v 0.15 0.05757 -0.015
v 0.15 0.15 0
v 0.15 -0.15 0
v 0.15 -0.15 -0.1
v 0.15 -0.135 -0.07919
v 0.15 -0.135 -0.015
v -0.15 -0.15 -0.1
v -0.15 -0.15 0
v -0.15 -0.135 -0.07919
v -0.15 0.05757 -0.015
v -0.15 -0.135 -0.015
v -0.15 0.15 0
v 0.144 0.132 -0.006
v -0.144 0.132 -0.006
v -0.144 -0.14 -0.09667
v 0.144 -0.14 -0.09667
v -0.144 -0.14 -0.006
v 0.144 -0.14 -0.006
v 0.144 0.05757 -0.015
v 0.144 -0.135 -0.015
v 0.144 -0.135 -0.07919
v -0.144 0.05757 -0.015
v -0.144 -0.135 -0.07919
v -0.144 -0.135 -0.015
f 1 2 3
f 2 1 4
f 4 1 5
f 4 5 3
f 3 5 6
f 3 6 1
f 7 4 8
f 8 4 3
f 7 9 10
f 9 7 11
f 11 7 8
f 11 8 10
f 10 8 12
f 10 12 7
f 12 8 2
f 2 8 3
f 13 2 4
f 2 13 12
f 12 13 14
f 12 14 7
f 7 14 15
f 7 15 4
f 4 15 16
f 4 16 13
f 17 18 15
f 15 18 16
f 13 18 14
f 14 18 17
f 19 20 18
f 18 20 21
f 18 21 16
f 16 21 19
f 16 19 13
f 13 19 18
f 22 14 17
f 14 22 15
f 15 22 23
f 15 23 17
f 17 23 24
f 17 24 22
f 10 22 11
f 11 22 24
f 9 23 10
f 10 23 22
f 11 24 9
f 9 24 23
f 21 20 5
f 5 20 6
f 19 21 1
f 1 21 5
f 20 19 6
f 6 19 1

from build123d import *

# Parameters (mm, degrees)
SKETCH1_W           = 300
SKETCH1_H           = 300
BOSS_EXTRUDE1_DEPTH = 100
SKETCH4_W           = 288
SKETCH4_H           = 94
CUT_EXTRUDE1_DEPTH  = 290
CUT_EXTRUDE2_DEPTH  = 309.1
CUT_EXTRUDE3_DEPTH  = 309.1
SCALE1_SCALE        = 0.001


with BuildPart() as part:
    # Sketch1 → Boss-Extrude1 (new body)
    with BuildSketch(Plane.XY):
        Rectangle(SKETCH1_W, SKETCH1_H)
    extrude(amount=-BOSS_EXTRUDE1_DEPTH)

    # Sketch4 → Cut-Extrude1 (cut)
    with BuildSketch(Plane(origin=(0, 150, 0), x_dir=(1, 0, 0), z_dir=(0, 1, 0))):
        with Locations((0, 53)):
            Rectangle(SKETCH4_W, SKETCH4_H)
    extrude(amount=-CUT_EXTRUDE1_DEPTH, mode=Mode.SUBTRACT)

    # Sketch3 → Cut-Extrude2 (cut)
    with BuildSketch(Plane.ZY.offset(150)):
        Polygon((-100, 150), (-100, -150), (0, 150), align=None)
    extrude(amount=-CUT_EXTRUDE2_DEPTH, mode=Mode.SUBTRACT)

    # Sketch5 → Cut-Extrude3 (cut)
    with BuildSketch(Plane.ZY.offset(150)):
        Polygon((-15, -135), (-15, 57.565835097), (-79.188611699, -135), align=None)
    extrude(amount=-CUT_EXTRUDE3_DEPTH, mode=Mode.SUBTRACT)


with BuildPart() as part_1:
    # Scale1: scaled about (0, 0, 0)
    add(part.part.scale(SCALE1_SCALE))


solid = part_1.part
